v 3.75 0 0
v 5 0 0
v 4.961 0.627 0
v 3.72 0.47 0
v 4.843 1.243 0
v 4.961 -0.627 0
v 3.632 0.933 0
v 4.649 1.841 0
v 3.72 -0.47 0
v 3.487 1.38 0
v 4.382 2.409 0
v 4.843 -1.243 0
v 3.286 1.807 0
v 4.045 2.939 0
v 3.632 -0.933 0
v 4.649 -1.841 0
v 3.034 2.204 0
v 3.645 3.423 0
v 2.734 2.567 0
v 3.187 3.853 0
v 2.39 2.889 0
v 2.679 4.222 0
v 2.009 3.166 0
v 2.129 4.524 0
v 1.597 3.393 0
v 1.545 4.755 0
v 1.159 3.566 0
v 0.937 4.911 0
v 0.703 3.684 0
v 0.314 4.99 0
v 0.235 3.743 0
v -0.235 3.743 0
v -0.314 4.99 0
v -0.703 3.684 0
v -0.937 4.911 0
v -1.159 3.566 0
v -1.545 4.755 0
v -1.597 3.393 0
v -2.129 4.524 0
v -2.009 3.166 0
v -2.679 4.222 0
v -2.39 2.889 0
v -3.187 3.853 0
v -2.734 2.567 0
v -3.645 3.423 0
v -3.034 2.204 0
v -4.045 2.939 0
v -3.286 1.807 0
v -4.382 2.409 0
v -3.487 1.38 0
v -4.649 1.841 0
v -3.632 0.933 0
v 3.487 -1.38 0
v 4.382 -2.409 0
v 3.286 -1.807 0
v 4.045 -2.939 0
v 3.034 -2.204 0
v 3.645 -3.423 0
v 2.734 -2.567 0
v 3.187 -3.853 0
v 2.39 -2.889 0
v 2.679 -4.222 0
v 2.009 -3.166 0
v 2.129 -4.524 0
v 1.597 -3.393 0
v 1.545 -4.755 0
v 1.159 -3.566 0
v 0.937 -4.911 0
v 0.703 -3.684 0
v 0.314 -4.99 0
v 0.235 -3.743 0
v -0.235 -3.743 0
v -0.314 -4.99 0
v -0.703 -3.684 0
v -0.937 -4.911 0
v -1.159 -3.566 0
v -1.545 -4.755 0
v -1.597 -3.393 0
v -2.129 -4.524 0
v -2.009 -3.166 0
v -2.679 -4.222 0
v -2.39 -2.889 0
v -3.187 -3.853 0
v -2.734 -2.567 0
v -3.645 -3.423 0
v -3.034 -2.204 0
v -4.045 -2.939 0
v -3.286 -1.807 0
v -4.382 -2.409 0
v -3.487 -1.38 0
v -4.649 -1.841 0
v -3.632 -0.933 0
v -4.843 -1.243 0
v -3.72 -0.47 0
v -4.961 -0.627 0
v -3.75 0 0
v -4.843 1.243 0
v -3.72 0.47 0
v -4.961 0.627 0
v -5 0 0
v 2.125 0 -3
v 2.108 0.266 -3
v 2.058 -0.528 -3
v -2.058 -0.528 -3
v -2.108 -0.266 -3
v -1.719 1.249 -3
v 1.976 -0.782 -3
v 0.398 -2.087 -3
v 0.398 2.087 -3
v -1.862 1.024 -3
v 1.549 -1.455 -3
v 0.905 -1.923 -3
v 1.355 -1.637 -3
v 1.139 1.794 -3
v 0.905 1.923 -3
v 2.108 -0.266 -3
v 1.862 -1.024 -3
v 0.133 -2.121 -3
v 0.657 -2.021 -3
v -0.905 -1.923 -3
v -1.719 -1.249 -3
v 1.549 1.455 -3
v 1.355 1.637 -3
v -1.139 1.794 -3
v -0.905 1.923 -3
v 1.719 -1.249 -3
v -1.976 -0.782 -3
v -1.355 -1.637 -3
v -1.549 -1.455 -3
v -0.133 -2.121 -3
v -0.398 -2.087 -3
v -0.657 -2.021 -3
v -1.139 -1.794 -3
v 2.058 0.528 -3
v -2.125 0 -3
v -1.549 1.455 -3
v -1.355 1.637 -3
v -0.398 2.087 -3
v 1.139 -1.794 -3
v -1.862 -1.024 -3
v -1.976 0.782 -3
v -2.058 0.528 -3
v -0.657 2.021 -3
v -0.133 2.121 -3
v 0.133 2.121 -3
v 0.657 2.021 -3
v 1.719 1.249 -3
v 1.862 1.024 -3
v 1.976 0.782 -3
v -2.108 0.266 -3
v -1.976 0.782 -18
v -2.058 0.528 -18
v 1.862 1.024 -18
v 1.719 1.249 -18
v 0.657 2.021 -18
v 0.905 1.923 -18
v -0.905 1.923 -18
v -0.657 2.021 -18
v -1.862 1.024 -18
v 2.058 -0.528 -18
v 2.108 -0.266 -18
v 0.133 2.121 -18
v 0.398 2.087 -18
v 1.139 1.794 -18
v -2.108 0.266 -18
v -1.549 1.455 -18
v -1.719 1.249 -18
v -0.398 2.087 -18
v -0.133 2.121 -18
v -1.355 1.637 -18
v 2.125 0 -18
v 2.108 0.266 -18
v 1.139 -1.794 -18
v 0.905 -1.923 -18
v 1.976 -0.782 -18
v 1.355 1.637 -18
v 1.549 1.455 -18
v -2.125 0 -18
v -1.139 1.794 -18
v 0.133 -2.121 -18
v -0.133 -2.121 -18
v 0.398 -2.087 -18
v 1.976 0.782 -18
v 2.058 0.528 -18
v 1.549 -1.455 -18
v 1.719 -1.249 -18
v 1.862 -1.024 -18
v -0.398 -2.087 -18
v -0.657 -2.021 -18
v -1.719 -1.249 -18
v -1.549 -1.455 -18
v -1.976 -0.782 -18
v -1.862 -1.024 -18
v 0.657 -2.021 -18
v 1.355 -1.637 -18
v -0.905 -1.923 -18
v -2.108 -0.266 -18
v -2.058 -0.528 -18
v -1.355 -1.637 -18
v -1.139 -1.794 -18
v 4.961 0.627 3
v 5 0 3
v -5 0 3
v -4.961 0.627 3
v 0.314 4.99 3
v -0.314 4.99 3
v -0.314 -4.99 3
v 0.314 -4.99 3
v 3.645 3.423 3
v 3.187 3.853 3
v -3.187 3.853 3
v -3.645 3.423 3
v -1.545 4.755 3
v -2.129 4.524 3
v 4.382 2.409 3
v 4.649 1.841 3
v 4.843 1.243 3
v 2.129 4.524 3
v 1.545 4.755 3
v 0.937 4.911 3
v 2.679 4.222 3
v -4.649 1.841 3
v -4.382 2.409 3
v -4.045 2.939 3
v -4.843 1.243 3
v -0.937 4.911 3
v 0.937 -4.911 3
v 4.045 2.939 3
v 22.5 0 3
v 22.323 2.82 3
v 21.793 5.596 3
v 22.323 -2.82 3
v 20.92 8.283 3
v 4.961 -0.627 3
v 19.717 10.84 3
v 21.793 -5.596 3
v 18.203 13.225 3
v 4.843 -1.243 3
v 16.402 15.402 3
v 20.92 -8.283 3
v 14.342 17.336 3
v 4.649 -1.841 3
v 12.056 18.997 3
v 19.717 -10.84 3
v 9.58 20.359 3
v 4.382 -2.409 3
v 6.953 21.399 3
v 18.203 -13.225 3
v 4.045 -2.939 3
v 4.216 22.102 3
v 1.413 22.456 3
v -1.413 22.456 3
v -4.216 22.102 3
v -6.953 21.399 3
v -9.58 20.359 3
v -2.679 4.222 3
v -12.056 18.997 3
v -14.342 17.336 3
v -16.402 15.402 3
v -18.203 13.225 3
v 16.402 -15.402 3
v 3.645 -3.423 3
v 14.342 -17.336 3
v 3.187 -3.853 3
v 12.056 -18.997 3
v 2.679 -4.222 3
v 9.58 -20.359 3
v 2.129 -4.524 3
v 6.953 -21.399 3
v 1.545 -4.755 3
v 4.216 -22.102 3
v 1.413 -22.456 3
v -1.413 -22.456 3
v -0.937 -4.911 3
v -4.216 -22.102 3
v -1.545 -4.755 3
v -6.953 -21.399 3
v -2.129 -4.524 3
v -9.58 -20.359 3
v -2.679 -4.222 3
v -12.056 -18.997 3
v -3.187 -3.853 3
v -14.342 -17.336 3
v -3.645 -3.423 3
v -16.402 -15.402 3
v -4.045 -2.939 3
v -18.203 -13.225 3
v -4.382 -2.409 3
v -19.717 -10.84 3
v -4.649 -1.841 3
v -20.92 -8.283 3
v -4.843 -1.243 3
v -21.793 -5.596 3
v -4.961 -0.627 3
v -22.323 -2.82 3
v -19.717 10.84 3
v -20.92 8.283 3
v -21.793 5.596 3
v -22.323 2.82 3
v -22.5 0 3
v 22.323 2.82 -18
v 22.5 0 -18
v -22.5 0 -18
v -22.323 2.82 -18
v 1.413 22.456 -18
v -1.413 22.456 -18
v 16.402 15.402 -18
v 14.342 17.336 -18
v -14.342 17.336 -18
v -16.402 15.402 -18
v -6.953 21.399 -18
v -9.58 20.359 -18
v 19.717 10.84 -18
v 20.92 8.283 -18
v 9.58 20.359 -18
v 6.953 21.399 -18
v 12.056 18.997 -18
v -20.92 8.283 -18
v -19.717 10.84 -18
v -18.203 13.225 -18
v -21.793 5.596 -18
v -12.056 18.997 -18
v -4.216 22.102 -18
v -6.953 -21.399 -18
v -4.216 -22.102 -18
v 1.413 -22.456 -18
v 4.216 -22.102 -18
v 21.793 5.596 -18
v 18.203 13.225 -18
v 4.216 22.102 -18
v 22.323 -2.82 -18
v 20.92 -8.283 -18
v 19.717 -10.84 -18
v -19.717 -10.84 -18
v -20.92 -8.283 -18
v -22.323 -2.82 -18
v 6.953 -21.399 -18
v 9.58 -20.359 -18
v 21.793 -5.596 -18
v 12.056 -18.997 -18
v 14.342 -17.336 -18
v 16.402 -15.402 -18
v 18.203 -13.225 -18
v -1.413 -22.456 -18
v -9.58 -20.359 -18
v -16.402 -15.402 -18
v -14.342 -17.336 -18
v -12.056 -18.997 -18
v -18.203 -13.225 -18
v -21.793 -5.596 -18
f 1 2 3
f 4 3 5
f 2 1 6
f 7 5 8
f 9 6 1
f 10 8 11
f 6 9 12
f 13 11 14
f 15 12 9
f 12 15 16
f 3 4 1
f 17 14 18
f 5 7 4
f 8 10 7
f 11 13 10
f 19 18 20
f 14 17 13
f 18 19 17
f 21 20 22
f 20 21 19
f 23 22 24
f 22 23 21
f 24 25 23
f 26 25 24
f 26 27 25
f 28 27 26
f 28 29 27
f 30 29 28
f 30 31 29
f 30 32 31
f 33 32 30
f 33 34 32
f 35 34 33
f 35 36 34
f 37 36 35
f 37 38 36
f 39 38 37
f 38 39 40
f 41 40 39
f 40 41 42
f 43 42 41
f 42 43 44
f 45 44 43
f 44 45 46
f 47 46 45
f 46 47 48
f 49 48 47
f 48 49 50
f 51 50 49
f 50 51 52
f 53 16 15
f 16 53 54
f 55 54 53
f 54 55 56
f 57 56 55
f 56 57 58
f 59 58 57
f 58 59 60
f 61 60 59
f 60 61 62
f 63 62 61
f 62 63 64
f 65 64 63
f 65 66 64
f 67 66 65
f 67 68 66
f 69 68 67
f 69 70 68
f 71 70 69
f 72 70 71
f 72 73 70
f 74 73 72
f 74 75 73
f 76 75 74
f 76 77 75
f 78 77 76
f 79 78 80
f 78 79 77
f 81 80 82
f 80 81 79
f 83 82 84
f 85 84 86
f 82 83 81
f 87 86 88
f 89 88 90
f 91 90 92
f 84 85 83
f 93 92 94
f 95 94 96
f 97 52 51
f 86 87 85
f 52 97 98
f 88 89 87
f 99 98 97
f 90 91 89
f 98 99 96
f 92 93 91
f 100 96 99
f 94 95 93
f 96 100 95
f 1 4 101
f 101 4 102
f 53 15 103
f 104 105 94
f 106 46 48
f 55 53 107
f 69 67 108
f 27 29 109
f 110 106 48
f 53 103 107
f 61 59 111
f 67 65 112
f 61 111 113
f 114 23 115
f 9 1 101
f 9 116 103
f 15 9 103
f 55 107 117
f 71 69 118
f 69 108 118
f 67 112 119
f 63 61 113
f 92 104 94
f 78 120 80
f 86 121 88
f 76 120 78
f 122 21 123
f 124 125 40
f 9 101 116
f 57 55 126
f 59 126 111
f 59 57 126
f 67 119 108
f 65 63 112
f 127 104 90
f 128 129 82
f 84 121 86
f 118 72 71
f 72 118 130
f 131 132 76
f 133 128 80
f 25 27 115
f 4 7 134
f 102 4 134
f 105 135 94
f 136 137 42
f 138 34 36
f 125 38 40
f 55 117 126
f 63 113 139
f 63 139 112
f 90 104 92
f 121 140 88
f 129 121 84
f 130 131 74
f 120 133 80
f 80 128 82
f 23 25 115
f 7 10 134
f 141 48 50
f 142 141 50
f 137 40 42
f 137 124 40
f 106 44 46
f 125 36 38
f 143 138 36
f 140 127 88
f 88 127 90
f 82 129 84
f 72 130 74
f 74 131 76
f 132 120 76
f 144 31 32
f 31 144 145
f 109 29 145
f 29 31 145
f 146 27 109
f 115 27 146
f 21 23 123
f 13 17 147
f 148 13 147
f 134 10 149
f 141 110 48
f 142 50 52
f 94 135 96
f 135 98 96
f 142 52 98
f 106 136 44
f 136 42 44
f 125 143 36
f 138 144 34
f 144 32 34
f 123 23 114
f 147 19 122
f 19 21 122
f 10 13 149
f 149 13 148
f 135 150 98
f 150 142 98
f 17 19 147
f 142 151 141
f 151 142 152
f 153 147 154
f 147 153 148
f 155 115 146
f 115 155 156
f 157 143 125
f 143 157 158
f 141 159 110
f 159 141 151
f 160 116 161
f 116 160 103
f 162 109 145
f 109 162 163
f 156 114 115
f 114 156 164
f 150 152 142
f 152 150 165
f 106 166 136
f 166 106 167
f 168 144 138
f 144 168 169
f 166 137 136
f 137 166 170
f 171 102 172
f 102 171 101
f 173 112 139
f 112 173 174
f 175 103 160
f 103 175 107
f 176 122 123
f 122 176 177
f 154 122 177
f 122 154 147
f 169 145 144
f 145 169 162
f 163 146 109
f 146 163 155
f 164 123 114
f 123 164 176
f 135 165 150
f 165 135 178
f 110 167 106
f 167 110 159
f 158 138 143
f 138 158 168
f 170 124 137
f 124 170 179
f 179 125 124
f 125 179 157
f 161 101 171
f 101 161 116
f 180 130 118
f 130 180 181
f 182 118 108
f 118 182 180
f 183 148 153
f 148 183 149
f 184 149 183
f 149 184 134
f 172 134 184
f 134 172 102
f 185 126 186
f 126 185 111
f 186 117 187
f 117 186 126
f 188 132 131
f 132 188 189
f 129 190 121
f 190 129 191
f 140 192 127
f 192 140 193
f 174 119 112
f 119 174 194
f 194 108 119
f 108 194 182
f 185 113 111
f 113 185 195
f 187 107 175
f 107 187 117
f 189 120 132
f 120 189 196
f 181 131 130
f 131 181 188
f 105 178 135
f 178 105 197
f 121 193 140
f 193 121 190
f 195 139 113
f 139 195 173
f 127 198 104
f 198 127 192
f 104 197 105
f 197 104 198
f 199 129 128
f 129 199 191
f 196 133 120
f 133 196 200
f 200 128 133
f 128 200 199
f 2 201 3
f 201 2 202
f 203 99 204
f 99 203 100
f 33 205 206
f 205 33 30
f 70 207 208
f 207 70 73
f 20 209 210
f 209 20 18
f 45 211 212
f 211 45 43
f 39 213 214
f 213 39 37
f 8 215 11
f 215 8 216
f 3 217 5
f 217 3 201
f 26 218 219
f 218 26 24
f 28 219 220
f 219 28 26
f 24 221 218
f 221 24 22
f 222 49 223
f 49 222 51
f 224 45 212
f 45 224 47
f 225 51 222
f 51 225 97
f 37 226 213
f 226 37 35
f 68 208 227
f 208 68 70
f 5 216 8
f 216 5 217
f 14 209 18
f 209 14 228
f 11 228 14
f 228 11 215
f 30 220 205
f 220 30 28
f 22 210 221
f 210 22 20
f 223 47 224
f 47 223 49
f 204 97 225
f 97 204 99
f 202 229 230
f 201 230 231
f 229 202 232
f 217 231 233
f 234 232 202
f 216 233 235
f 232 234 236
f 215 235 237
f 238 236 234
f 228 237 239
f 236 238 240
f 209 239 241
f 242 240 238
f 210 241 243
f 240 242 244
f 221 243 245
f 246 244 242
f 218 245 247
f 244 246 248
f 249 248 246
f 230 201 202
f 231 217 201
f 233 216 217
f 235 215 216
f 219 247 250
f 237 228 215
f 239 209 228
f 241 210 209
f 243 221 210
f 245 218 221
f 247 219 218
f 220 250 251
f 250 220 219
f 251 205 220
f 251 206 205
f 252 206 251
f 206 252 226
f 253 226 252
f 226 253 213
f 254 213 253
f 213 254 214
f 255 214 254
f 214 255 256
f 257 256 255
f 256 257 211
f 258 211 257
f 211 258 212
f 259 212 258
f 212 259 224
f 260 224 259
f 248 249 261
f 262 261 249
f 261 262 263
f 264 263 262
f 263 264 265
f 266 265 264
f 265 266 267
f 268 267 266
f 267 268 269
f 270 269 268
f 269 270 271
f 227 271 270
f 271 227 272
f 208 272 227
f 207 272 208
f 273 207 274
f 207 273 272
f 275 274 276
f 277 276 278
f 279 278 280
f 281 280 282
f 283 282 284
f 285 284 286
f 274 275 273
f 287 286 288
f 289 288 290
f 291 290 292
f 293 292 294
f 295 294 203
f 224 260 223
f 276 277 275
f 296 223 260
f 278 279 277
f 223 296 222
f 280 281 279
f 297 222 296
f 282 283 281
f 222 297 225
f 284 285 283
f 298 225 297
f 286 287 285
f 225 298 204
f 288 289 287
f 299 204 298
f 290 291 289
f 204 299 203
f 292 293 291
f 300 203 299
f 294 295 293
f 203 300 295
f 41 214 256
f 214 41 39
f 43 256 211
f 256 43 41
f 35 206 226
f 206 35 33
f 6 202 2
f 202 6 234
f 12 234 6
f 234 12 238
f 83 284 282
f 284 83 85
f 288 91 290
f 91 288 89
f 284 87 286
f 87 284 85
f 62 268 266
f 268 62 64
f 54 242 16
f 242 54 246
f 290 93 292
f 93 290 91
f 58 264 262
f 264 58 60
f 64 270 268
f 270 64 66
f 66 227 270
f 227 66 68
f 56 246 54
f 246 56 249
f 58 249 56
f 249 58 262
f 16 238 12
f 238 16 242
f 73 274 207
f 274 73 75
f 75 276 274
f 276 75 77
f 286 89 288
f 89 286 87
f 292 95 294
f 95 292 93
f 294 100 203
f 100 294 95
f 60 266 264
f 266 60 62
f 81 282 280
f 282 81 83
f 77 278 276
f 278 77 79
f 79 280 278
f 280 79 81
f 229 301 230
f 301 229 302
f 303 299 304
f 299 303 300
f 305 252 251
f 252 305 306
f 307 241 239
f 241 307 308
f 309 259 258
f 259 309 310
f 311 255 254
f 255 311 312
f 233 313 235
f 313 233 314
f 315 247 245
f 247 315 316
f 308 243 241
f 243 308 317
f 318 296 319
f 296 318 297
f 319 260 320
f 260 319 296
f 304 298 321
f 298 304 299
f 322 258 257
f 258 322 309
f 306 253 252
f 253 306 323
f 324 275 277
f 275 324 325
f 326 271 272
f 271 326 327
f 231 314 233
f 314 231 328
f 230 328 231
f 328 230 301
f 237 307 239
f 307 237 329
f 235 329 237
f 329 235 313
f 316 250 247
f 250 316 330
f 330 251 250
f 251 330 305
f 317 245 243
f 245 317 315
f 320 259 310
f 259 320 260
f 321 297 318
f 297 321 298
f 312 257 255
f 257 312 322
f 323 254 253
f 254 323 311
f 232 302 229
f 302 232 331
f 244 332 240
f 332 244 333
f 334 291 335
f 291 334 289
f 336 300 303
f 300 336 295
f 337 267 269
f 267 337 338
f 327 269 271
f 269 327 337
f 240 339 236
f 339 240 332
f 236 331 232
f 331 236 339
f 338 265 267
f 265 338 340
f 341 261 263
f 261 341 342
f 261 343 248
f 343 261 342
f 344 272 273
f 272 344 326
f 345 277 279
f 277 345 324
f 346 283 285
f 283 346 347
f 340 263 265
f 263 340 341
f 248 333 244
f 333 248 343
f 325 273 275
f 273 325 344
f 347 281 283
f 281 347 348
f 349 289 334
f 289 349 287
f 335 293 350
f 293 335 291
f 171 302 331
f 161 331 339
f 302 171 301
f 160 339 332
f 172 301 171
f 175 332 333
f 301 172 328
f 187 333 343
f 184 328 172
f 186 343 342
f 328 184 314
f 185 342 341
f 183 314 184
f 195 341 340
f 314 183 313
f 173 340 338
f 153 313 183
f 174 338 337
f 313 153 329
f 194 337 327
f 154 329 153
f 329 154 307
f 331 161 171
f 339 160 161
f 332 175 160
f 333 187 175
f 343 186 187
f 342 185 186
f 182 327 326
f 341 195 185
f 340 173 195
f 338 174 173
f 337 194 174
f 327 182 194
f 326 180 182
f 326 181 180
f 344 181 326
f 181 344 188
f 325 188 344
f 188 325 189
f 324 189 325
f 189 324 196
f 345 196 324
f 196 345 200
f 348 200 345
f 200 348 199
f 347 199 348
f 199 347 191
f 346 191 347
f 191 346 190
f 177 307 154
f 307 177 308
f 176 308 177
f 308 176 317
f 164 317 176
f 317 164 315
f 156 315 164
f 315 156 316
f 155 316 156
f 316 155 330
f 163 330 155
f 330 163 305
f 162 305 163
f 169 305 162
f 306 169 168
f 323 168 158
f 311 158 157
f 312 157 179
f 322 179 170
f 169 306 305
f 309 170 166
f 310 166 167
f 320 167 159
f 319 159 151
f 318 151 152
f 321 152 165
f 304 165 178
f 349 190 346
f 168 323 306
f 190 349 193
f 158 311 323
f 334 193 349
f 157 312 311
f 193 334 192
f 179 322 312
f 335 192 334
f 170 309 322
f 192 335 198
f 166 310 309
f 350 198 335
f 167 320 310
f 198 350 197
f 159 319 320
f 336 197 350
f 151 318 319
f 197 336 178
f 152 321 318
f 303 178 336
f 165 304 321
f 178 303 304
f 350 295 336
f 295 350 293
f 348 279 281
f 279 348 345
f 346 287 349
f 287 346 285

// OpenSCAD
$fn = 50;

difference() {
	union() {
		translate(v = [0, 0, -18.0]) {
			cylinder(h = 21, r = 22.5);
		}
	}
	union() {
		translate(v = [0, 0, 0]) {
			rotate(a = [0, 0, 0]) {
				difference() {
					union() {
						translate(v = [0, 0, -21.0]) {
							cylinder(h = 21, r = 2.0);
						}
						translate(v = [0, 0, -3]) {
							cylinder(h = 3, r1 = 2.125, r2 = 3.75);
						}
						translate(v = [0, 0, -21.0]) {
							cylinder(h = 21, r = 2.125);
						}
						translate(v = [0, 0, -21.0]) {
							cylinder(h = 21, r = 2.0);
						}
					}
					union();
				}
			}
		}
		#cylinder(h = 3, r = 5.0);
	}
}
